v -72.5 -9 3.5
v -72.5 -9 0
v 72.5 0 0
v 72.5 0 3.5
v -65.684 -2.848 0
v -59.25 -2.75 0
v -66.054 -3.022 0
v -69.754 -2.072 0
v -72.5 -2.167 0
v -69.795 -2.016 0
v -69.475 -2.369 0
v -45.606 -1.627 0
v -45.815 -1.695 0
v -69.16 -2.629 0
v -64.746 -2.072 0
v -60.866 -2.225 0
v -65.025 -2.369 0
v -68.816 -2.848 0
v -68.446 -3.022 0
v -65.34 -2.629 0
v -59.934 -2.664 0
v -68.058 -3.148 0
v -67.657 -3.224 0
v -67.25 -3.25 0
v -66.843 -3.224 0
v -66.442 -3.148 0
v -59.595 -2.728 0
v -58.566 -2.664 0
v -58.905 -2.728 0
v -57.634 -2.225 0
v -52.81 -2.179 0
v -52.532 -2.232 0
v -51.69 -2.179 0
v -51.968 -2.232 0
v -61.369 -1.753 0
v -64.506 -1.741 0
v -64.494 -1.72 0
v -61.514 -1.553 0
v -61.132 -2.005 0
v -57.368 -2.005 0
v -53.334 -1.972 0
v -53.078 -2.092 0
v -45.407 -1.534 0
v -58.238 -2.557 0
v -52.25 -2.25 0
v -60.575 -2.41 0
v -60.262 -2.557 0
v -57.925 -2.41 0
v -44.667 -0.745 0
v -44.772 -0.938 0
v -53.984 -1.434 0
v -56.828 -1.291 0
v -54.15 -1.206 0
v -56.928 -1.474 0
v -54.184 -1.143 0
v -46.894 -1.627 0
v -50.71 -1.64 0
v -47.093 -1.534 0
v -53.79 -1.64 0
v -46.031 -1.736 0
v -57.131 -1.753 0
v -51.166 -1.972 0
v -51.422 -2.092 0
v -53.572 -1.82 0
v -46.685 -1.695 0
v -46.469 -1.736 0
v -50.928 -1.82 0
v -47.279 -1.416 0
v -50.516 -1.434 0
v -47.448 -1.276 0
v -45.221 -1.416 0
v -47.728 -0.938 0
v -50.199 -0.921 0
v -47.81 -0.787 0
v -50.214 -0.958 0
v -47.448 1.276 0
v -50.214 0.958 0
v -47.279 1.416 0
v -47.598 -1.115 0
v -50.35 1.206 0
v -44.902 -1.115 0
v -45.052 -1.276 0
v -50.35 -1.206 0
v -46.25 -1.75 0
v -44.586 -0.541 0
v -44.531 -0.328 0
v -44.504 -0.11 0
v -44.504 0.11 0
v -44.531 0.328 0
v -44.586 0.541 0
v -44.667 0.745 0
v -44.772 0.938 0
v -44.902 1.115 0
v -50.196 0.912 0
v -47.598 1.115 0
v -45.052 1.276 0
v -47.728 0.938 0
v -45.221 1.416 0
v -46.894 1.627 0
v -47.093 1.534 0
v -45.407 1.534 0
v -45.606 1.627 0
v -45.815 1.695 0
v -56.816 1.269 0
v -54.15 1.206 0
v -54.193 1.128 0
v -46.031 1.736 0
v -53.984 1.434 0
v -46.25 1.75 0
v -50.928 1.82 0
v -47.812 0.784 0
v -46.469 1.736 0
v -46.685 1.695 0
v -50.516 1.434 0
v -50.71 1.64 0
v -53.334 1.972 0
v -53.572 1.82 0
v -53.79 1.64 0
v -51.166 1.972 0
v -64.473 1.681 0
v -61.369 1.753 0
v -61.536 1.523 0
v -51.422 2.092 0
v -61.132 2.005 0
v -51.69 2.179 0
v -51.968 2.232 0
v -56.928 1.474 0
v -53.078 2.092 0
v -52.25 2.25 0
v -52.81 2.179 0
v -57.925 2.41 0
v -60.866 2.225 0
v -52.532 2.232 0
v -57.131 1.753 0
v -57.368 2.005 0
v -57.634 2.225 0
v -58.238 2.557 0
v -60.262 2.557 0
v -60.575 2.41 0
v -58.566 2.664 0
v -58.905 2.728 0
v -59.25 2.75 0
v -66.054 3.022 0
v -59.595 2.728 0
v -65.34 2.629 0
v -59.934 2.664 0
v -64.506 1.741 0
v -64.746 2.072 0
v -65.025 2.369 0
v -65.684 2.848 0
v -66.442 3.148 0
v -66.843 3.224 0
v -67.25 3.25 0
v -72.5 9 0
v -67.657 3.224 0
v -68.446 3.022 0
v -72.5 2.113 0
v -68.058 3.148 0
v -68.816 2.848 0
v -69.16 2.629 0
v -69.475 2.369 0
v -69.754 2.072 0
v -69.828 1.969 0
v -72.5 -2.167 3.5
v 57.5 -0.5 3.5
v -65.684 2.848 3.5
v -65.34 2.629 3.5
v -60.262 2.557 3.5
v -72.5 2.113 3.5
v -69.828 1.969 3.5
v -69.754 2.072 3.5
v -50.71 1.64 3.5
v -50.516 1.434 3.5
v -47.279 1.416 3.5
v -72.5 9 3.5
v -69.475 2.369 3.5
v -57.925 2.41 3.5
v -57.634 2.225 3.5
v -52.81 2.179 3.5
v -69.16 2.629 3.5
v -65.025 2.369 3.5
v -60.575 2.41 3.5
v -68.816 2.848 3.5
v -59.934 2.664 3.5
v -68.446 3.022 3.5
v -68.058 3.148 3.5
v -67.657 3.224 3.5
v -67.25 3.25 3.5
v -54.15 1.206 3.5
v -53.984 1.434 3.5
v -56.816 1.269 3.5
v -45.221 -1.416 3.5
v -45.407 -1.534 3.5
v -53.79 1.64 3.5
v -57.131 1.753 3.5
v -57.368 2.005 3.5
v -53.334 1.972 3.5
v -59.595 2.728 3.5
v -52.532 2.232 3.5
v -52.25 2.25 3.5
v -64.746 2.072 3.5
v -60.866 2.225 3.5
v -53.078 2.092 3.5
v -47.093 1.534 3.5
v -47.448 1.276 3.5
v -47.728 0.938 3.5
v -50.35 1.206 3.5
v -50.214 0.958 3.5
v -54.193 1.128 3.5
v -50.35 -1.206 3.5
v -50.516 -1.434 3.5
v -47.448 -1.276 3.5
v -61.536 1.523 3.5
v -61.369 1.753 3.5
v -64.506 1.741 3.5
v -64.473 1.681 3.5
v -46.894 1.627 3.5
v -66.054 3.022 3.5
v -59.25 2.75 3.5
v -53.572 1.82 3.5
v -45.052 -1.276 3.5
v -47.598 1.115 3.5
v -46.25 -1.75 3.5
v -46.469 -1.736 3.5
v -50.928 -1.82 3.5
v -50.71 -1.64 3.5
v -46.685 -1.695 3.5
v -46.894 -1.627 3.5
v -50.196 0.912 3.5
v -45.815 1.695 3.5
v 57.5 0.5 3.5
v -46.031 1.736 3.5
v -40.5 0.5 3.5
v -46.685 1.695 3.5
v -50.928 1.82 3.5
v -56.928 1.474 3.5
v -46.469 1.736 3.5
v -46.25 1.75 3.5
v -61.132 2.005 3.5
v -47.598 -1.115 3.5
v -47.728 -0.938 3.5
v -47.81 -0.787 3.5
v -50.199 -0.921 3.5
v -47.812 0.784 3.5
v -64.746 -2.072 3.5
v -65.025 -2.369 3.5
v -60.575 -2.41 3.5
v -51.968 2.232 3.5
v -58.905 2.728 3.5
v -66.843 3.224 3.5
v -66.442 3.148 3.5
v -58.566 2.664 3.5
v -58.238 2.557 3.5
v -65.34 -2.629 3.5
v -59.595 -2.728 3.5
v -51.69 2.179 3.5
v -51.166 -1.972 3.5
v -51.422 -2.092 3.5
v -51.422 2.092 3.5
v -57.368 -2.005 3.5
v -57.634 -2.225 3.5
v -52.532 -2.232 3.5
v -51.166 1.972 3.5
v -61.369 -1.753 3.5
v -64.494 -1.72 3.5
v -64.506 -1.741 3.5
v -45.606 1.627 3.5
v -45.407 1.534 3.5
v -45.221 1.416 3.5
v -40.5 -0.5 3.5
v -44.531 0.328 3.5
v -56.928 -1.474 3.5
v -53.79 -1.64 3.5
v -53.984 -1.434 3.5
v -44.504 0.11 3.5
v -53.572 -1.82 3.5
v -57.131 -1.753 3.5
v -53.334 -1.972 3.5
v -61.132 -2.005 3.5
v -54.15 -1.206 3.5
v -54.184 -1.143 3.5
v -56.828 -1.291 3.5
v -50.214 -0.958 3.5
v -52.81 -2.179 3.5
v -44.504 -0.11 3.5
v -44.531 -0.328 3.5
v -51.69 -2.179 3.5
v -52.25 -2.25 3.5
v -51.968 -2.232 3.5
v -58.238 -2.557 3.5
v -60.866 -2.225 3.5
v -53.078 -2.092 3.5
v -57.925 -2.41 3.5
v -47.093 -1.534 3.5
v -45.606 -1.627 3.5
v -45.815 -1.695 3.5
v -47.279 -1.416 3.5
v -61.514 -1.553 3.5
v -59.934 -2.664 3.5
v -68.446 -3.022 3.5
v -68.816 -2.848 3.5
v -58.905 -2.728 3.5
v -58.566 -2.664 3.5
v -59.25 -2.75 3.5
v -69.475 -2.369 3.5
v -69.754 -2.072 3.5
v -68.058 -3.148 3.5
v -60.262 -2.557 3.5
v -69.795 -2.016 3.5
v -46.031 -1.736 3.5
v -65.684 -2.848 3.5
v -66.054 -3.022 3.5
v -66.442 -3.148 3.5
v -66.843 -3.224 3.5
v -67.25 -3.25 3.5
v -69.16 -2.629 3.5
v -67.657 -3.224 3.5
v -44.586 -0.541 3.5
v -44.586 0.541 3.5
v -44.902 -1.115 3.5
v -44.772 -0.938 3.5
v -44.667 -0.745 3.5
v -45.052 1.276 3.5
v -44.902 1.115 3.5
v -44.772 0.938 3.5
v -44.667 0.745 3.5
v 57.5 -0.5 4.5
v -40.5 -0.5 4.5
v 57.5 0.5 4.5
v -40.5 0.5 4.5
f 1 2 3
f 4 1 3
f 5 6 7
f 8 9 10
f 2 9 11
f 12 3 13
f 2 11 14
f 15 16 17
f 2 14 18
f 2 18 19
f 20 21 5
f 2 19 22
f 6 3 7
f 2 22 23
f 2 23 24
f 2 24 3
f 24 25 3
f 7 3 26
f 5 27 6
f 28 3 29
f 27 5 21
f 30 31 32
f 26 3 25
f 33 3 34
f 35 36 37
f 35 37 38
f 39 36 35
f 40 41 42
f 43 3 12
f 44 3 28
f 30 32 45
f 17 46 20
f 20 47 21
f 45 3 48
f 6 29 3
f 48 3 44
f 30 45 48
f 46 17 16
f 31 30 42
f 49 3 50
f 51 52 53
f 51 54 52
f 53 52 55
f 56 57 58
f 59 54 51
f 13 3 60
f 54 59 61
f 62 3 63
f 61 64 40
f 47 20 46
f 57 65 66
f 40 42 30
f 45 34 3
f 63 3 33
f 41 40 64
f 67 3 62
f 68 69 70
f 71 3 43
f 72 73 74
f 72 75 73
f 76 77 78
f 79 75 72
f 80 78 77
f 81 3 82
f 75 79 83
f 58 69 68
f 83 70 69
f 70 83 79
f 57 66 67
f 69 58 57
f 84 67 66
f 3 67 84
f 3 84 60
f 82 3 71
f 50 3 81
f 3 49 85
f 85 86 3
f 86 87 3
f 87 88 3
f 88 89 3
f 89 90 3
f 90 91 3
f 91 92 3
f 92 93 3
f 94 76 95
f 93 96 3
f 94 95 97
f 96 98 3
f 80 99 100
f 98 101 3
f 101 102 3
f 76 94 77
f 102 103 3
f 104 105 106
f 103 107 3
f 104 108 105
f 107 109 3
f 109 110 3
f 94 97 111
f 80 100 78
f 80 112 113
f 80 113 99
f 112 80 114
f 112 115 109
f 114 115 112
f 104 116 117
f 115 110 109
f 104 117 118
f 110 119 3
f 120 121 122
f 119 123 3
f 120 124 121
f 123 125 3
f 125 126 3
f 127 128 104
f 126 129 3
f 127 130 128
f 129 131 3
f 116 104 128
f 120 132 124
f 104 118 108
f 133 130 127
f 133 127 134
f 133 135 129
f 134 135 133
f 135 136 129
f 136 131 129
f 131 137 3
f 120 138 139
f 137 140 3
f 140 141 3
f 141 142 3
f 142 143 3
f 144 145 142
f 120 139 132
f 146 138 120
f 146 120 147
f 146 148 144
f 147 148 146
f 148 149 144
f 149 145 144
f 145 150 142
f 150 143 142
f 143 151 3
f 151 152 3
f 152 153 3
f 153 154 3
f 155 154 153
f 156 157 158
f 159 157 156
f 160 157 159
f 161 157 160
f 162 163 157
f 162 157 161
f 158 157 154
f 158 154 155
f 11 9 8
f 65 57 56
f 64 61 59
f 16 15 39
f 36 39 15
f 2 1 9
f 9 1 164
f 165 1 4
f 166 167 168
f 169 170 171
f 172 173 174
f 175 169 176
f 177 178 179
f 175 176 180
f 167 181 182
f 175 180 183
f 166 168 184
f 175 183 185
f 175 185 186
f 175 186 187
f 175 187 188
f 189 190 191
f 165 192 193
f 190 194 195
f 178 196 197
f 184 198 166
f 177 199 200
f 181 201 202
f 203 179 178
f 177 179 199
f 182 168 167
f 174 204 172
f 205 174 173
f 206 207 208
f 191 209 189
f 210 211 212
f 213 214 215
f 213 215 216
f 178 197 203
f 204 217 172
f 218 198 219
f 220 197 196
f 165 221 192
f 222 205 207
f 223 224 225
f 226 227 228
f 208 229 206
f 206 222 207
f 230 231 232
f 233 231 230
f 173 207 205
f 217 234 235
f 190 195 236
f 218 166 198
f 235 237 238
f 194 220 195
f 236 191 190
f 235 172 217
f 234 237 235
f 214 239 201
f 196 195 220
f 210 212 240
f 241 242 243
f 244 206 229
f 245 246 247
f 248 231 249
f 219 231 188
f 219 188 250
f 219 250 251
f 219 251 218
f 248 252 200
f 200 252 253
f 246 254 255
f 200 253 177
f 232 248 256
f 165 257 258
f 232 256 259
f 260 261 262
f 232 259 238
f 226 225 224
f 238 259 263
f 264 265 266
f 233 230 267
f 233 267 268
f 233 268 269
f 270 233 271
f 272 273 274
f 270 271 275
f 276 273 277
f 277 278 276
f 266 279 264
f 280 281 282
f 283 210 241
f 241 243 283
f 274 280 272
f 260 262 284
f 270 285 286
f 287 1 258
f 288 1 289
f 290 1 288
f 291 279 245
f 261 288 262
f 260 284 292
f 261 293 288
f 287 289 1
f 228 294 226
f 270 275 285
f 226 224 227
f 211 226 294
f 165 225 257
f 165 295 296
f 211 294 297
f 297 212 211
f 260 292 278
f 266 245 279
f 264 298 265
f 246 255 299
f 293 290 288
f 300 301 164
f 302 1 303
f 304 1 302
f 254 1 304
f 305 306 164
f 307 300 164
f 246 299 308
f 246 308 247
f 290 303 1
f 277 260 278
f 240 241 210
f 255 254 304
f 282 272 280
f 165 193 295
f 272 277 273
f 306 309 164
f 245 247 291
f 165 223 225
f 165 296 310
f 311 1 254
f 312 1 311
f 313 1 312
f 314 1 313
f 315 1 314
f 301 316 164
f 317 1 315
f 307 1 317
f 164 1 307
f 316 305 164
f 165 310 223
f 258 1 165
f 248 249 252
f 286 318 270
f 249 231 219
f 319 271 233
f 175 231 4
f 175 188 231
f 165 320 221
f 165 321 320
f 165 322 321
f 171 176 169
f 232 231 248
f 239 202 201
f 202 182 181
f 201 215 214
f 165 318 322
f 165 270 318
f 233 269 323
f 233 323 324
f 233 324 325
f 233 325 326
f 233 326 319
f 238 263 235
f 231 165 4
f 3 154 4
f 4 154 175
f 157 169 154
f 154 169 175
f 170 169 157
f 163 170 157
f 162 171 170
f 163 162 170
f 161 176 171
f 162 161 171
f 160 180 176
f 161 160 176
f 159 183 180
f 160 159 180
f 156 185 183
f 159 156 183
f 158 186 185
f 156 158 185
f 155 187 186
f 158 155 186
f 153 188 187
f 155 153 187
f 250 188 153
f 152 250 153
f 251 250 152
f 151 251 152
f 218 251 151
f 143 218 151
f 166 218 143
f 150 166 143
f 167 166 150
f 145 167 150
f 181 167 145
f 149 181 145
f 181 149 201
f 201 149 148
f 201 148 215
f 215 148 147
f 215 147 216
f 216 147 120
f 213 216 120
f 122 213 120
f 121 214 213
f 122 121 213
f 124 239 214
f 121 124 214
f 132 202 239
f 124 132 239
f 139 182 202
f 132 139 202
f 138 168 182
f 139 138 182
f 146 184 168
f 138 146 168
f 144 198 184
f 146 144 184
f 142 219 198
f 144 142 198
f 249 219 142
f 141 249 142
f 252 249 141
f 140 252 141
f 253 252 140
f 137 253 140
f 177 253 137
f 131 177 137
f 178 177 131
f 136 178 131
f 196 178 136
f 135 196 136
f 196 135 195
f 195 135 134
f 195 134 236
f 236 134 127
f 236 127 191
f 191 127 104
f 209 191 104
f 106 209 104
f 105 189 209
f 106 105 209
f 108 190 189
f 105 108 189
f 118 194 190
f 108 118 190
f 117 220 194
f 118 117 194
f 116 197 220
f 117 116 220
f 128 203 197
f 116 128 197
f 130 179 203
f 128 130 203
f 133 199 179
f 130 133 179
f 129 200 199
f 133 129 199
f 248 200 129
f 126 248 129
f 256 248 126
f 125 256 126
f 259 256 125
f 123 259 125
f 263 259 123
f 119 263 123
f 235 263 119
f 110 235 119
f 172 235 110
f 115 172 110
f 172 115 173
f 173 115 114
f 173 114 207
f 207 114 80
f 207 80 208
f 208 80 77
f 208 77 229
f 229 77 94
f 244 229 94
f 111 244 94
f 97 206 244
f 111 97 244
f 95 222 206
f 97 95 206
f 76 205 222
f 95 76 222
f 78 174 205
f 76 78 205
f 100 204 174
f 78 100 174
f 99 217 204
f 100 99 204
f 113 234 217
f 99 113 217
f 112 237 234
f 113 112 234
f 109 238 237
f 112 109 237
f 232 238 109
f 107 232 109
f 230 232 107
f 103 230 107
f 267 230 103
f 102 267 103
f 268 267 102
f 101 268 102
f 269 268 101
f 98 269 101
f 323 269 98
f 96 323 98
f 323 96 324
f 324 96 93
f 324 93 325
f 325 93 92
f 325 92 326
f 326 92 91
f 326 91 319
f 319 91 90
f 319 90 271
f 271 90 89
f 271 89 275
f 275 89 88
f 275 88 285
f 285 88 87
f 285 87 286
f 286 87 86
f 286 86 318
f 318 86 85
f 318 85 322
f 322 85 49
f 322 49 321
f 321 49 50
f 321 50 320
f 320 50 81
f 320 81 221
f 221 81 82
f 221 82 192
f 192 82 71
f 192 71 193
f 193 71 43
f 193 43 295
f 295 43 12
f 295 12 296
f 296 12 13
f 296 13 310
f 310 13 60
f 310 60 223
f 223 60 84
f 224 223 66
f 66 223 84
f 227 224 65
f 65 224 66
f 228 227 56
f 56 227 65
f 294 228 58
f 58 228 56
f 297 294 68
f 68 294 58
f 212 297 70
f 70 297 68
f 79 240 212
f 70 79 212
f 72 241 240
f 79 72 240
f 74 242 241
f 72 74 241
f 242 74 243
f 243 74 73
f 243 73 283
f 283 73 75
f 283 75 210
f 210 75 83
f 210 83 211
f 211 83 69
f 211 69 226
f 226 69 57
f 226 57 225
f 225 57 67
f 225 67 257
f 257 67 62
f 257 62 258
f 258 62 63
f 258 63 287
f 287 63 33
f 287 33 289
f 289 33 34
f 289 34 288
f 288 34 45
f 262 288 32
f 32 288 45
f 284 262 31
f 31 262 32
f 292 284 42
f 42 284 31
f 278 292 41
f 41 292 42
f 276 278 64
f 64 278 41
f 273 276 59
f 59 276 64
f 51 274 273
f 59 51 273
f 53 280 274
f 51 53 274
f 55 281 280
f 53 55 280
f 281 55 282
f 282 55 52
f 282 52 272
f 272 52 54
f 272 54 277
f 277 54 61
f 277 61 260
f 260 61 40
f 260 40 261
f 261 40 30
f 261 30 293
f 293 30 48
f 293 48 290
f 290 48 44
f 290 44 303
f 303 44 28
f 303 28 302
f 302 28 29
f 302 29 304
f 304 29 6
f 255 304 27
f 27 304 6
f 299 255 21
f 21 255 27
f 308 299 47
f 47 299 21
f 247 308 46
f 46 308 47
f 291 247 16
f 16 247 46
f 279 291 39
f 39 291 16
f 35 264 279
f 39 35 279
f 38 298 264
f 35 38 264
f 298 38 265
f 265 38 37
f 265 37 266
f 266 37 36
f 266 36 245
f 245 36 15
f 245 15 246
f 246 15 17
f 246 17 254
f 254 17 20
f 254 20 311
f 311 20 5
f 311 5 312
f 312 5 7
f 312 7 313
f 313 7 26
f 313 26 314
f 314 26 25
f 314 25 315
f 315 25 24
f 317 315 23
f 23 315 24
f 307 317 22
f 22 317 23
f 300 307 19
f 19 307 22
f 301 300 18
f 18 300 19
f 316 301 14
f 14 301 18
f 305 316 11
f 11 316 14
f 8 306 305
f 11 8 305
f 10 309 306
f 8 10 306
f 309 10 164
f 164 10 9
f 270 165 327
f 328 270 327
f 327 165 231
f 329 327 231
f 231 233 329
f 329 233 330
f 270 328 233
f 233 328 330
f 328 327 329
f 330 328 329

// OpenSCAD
// Garden irrigation hose stake 2 by Brian Enigma

// This is the thickest part, up at the top of the stake
OUTSIDE_DIAMETER = 18;

// This is the overall length of the stake
LENGTH = 145;

// This is the height (or thickness, depending on how you look at it) of the 
// tallest part of the stake -- the bar running its length.
HEIGHT = 4.5;

// This is the thickness of all the rest of the stake that isn't a reinforcing
// ring or bar.
THICKNESS = 3.5;

// These are the diameters of the four circles.
CIRCLE1 = 6.5;
CIRCLE2 = 5.5;
CIRCLE3 = 4.5;
CIRCLE4 = 3.5;

// The detail (number of sides) of the circles.
DETAIL = 50;

//###################################################################### 

CIRCLE1_OFFSET = CIRCLE1 / 2 + 2;
CIRCLE2_OFFSET = CIRCLE1 + 2 + CIRCLE2 / 2 + 2;
CIRCLE3_OFFSET = CIRCLE1 + 2 + CIRCLE2 + 2 + CIRCLE3 / 2 + 2;
CIRCLE4_OFFSET = CIRCLE1 + 2 + CIRCLE2 + 2 + CIRCLE3 + 2 + CIRCLE4 / 2 + 2;
BAR_OFFSET = CIRCLE4_OFFSET + CIRCLE4 / 2 + 4;
BAR_LENGTH = LENGTH - BAR_OFFSET - 15;

module body()
{
    union()
    {
        linear_extrude(height = THICKNESS)
            polygon(points = [[OUTSIDE_DIAMETER / 2, 0], [0, -1 * LENGTH], [OUTSIDE_DIAMETER / -2, 0]]);
        translate(v = [-0.5, -1 * BAR_OFFSET - BAR_LENGTH, 0])
            cube(size = [1, BAR_LENGTH, HEIGHT]);
    }
}

module holes()
{
    translate(v = [0, -1 * CIRCLE1_OFFSET, -1])
        cylinder(h = HEIGHT + 2, r = CIRCLE1 / 2, $fn = DETAIL);
    translate(v = [0, -1 * CIRCLE2_OFFSET, -1])
        cylinder(h = HEIGHT + 2, r = CIRCLE2 / 2, $fn = DETAIL);
    translate(v = [0, -1 * CIRCLE3_OFFSET, -1])
        cylinder(h = HEIGHT + 2, r = CIRCLE3 / 2, $fn = DETAIL);
    translate(v = [0, -1 * CIRCLE4_OFFSET, -1])
        cylinder(h = HEIGHT + 2, r = CIRCLE4 / 2, $fn = DETAIL);
    translate(v = [0, 0, -1])
        linear_extrude(height = THICKNESS + 2)
            polygon(points = [
                [CIRCLE1 / 3, 1], 
                [CIRCLE4 / 5, -1 * CIRCLE4_OFFSET], 
                [CIRCLE4 / -5, -1 * CIRCLE4_OFFSET], 
                [CIRCLE1 / -3, 0]]);
}

translate(v = [LENGTH / -2, 0, 0])
rotate(a = [0, 0, 90])
difference()
{
    body();
    holes();
}
